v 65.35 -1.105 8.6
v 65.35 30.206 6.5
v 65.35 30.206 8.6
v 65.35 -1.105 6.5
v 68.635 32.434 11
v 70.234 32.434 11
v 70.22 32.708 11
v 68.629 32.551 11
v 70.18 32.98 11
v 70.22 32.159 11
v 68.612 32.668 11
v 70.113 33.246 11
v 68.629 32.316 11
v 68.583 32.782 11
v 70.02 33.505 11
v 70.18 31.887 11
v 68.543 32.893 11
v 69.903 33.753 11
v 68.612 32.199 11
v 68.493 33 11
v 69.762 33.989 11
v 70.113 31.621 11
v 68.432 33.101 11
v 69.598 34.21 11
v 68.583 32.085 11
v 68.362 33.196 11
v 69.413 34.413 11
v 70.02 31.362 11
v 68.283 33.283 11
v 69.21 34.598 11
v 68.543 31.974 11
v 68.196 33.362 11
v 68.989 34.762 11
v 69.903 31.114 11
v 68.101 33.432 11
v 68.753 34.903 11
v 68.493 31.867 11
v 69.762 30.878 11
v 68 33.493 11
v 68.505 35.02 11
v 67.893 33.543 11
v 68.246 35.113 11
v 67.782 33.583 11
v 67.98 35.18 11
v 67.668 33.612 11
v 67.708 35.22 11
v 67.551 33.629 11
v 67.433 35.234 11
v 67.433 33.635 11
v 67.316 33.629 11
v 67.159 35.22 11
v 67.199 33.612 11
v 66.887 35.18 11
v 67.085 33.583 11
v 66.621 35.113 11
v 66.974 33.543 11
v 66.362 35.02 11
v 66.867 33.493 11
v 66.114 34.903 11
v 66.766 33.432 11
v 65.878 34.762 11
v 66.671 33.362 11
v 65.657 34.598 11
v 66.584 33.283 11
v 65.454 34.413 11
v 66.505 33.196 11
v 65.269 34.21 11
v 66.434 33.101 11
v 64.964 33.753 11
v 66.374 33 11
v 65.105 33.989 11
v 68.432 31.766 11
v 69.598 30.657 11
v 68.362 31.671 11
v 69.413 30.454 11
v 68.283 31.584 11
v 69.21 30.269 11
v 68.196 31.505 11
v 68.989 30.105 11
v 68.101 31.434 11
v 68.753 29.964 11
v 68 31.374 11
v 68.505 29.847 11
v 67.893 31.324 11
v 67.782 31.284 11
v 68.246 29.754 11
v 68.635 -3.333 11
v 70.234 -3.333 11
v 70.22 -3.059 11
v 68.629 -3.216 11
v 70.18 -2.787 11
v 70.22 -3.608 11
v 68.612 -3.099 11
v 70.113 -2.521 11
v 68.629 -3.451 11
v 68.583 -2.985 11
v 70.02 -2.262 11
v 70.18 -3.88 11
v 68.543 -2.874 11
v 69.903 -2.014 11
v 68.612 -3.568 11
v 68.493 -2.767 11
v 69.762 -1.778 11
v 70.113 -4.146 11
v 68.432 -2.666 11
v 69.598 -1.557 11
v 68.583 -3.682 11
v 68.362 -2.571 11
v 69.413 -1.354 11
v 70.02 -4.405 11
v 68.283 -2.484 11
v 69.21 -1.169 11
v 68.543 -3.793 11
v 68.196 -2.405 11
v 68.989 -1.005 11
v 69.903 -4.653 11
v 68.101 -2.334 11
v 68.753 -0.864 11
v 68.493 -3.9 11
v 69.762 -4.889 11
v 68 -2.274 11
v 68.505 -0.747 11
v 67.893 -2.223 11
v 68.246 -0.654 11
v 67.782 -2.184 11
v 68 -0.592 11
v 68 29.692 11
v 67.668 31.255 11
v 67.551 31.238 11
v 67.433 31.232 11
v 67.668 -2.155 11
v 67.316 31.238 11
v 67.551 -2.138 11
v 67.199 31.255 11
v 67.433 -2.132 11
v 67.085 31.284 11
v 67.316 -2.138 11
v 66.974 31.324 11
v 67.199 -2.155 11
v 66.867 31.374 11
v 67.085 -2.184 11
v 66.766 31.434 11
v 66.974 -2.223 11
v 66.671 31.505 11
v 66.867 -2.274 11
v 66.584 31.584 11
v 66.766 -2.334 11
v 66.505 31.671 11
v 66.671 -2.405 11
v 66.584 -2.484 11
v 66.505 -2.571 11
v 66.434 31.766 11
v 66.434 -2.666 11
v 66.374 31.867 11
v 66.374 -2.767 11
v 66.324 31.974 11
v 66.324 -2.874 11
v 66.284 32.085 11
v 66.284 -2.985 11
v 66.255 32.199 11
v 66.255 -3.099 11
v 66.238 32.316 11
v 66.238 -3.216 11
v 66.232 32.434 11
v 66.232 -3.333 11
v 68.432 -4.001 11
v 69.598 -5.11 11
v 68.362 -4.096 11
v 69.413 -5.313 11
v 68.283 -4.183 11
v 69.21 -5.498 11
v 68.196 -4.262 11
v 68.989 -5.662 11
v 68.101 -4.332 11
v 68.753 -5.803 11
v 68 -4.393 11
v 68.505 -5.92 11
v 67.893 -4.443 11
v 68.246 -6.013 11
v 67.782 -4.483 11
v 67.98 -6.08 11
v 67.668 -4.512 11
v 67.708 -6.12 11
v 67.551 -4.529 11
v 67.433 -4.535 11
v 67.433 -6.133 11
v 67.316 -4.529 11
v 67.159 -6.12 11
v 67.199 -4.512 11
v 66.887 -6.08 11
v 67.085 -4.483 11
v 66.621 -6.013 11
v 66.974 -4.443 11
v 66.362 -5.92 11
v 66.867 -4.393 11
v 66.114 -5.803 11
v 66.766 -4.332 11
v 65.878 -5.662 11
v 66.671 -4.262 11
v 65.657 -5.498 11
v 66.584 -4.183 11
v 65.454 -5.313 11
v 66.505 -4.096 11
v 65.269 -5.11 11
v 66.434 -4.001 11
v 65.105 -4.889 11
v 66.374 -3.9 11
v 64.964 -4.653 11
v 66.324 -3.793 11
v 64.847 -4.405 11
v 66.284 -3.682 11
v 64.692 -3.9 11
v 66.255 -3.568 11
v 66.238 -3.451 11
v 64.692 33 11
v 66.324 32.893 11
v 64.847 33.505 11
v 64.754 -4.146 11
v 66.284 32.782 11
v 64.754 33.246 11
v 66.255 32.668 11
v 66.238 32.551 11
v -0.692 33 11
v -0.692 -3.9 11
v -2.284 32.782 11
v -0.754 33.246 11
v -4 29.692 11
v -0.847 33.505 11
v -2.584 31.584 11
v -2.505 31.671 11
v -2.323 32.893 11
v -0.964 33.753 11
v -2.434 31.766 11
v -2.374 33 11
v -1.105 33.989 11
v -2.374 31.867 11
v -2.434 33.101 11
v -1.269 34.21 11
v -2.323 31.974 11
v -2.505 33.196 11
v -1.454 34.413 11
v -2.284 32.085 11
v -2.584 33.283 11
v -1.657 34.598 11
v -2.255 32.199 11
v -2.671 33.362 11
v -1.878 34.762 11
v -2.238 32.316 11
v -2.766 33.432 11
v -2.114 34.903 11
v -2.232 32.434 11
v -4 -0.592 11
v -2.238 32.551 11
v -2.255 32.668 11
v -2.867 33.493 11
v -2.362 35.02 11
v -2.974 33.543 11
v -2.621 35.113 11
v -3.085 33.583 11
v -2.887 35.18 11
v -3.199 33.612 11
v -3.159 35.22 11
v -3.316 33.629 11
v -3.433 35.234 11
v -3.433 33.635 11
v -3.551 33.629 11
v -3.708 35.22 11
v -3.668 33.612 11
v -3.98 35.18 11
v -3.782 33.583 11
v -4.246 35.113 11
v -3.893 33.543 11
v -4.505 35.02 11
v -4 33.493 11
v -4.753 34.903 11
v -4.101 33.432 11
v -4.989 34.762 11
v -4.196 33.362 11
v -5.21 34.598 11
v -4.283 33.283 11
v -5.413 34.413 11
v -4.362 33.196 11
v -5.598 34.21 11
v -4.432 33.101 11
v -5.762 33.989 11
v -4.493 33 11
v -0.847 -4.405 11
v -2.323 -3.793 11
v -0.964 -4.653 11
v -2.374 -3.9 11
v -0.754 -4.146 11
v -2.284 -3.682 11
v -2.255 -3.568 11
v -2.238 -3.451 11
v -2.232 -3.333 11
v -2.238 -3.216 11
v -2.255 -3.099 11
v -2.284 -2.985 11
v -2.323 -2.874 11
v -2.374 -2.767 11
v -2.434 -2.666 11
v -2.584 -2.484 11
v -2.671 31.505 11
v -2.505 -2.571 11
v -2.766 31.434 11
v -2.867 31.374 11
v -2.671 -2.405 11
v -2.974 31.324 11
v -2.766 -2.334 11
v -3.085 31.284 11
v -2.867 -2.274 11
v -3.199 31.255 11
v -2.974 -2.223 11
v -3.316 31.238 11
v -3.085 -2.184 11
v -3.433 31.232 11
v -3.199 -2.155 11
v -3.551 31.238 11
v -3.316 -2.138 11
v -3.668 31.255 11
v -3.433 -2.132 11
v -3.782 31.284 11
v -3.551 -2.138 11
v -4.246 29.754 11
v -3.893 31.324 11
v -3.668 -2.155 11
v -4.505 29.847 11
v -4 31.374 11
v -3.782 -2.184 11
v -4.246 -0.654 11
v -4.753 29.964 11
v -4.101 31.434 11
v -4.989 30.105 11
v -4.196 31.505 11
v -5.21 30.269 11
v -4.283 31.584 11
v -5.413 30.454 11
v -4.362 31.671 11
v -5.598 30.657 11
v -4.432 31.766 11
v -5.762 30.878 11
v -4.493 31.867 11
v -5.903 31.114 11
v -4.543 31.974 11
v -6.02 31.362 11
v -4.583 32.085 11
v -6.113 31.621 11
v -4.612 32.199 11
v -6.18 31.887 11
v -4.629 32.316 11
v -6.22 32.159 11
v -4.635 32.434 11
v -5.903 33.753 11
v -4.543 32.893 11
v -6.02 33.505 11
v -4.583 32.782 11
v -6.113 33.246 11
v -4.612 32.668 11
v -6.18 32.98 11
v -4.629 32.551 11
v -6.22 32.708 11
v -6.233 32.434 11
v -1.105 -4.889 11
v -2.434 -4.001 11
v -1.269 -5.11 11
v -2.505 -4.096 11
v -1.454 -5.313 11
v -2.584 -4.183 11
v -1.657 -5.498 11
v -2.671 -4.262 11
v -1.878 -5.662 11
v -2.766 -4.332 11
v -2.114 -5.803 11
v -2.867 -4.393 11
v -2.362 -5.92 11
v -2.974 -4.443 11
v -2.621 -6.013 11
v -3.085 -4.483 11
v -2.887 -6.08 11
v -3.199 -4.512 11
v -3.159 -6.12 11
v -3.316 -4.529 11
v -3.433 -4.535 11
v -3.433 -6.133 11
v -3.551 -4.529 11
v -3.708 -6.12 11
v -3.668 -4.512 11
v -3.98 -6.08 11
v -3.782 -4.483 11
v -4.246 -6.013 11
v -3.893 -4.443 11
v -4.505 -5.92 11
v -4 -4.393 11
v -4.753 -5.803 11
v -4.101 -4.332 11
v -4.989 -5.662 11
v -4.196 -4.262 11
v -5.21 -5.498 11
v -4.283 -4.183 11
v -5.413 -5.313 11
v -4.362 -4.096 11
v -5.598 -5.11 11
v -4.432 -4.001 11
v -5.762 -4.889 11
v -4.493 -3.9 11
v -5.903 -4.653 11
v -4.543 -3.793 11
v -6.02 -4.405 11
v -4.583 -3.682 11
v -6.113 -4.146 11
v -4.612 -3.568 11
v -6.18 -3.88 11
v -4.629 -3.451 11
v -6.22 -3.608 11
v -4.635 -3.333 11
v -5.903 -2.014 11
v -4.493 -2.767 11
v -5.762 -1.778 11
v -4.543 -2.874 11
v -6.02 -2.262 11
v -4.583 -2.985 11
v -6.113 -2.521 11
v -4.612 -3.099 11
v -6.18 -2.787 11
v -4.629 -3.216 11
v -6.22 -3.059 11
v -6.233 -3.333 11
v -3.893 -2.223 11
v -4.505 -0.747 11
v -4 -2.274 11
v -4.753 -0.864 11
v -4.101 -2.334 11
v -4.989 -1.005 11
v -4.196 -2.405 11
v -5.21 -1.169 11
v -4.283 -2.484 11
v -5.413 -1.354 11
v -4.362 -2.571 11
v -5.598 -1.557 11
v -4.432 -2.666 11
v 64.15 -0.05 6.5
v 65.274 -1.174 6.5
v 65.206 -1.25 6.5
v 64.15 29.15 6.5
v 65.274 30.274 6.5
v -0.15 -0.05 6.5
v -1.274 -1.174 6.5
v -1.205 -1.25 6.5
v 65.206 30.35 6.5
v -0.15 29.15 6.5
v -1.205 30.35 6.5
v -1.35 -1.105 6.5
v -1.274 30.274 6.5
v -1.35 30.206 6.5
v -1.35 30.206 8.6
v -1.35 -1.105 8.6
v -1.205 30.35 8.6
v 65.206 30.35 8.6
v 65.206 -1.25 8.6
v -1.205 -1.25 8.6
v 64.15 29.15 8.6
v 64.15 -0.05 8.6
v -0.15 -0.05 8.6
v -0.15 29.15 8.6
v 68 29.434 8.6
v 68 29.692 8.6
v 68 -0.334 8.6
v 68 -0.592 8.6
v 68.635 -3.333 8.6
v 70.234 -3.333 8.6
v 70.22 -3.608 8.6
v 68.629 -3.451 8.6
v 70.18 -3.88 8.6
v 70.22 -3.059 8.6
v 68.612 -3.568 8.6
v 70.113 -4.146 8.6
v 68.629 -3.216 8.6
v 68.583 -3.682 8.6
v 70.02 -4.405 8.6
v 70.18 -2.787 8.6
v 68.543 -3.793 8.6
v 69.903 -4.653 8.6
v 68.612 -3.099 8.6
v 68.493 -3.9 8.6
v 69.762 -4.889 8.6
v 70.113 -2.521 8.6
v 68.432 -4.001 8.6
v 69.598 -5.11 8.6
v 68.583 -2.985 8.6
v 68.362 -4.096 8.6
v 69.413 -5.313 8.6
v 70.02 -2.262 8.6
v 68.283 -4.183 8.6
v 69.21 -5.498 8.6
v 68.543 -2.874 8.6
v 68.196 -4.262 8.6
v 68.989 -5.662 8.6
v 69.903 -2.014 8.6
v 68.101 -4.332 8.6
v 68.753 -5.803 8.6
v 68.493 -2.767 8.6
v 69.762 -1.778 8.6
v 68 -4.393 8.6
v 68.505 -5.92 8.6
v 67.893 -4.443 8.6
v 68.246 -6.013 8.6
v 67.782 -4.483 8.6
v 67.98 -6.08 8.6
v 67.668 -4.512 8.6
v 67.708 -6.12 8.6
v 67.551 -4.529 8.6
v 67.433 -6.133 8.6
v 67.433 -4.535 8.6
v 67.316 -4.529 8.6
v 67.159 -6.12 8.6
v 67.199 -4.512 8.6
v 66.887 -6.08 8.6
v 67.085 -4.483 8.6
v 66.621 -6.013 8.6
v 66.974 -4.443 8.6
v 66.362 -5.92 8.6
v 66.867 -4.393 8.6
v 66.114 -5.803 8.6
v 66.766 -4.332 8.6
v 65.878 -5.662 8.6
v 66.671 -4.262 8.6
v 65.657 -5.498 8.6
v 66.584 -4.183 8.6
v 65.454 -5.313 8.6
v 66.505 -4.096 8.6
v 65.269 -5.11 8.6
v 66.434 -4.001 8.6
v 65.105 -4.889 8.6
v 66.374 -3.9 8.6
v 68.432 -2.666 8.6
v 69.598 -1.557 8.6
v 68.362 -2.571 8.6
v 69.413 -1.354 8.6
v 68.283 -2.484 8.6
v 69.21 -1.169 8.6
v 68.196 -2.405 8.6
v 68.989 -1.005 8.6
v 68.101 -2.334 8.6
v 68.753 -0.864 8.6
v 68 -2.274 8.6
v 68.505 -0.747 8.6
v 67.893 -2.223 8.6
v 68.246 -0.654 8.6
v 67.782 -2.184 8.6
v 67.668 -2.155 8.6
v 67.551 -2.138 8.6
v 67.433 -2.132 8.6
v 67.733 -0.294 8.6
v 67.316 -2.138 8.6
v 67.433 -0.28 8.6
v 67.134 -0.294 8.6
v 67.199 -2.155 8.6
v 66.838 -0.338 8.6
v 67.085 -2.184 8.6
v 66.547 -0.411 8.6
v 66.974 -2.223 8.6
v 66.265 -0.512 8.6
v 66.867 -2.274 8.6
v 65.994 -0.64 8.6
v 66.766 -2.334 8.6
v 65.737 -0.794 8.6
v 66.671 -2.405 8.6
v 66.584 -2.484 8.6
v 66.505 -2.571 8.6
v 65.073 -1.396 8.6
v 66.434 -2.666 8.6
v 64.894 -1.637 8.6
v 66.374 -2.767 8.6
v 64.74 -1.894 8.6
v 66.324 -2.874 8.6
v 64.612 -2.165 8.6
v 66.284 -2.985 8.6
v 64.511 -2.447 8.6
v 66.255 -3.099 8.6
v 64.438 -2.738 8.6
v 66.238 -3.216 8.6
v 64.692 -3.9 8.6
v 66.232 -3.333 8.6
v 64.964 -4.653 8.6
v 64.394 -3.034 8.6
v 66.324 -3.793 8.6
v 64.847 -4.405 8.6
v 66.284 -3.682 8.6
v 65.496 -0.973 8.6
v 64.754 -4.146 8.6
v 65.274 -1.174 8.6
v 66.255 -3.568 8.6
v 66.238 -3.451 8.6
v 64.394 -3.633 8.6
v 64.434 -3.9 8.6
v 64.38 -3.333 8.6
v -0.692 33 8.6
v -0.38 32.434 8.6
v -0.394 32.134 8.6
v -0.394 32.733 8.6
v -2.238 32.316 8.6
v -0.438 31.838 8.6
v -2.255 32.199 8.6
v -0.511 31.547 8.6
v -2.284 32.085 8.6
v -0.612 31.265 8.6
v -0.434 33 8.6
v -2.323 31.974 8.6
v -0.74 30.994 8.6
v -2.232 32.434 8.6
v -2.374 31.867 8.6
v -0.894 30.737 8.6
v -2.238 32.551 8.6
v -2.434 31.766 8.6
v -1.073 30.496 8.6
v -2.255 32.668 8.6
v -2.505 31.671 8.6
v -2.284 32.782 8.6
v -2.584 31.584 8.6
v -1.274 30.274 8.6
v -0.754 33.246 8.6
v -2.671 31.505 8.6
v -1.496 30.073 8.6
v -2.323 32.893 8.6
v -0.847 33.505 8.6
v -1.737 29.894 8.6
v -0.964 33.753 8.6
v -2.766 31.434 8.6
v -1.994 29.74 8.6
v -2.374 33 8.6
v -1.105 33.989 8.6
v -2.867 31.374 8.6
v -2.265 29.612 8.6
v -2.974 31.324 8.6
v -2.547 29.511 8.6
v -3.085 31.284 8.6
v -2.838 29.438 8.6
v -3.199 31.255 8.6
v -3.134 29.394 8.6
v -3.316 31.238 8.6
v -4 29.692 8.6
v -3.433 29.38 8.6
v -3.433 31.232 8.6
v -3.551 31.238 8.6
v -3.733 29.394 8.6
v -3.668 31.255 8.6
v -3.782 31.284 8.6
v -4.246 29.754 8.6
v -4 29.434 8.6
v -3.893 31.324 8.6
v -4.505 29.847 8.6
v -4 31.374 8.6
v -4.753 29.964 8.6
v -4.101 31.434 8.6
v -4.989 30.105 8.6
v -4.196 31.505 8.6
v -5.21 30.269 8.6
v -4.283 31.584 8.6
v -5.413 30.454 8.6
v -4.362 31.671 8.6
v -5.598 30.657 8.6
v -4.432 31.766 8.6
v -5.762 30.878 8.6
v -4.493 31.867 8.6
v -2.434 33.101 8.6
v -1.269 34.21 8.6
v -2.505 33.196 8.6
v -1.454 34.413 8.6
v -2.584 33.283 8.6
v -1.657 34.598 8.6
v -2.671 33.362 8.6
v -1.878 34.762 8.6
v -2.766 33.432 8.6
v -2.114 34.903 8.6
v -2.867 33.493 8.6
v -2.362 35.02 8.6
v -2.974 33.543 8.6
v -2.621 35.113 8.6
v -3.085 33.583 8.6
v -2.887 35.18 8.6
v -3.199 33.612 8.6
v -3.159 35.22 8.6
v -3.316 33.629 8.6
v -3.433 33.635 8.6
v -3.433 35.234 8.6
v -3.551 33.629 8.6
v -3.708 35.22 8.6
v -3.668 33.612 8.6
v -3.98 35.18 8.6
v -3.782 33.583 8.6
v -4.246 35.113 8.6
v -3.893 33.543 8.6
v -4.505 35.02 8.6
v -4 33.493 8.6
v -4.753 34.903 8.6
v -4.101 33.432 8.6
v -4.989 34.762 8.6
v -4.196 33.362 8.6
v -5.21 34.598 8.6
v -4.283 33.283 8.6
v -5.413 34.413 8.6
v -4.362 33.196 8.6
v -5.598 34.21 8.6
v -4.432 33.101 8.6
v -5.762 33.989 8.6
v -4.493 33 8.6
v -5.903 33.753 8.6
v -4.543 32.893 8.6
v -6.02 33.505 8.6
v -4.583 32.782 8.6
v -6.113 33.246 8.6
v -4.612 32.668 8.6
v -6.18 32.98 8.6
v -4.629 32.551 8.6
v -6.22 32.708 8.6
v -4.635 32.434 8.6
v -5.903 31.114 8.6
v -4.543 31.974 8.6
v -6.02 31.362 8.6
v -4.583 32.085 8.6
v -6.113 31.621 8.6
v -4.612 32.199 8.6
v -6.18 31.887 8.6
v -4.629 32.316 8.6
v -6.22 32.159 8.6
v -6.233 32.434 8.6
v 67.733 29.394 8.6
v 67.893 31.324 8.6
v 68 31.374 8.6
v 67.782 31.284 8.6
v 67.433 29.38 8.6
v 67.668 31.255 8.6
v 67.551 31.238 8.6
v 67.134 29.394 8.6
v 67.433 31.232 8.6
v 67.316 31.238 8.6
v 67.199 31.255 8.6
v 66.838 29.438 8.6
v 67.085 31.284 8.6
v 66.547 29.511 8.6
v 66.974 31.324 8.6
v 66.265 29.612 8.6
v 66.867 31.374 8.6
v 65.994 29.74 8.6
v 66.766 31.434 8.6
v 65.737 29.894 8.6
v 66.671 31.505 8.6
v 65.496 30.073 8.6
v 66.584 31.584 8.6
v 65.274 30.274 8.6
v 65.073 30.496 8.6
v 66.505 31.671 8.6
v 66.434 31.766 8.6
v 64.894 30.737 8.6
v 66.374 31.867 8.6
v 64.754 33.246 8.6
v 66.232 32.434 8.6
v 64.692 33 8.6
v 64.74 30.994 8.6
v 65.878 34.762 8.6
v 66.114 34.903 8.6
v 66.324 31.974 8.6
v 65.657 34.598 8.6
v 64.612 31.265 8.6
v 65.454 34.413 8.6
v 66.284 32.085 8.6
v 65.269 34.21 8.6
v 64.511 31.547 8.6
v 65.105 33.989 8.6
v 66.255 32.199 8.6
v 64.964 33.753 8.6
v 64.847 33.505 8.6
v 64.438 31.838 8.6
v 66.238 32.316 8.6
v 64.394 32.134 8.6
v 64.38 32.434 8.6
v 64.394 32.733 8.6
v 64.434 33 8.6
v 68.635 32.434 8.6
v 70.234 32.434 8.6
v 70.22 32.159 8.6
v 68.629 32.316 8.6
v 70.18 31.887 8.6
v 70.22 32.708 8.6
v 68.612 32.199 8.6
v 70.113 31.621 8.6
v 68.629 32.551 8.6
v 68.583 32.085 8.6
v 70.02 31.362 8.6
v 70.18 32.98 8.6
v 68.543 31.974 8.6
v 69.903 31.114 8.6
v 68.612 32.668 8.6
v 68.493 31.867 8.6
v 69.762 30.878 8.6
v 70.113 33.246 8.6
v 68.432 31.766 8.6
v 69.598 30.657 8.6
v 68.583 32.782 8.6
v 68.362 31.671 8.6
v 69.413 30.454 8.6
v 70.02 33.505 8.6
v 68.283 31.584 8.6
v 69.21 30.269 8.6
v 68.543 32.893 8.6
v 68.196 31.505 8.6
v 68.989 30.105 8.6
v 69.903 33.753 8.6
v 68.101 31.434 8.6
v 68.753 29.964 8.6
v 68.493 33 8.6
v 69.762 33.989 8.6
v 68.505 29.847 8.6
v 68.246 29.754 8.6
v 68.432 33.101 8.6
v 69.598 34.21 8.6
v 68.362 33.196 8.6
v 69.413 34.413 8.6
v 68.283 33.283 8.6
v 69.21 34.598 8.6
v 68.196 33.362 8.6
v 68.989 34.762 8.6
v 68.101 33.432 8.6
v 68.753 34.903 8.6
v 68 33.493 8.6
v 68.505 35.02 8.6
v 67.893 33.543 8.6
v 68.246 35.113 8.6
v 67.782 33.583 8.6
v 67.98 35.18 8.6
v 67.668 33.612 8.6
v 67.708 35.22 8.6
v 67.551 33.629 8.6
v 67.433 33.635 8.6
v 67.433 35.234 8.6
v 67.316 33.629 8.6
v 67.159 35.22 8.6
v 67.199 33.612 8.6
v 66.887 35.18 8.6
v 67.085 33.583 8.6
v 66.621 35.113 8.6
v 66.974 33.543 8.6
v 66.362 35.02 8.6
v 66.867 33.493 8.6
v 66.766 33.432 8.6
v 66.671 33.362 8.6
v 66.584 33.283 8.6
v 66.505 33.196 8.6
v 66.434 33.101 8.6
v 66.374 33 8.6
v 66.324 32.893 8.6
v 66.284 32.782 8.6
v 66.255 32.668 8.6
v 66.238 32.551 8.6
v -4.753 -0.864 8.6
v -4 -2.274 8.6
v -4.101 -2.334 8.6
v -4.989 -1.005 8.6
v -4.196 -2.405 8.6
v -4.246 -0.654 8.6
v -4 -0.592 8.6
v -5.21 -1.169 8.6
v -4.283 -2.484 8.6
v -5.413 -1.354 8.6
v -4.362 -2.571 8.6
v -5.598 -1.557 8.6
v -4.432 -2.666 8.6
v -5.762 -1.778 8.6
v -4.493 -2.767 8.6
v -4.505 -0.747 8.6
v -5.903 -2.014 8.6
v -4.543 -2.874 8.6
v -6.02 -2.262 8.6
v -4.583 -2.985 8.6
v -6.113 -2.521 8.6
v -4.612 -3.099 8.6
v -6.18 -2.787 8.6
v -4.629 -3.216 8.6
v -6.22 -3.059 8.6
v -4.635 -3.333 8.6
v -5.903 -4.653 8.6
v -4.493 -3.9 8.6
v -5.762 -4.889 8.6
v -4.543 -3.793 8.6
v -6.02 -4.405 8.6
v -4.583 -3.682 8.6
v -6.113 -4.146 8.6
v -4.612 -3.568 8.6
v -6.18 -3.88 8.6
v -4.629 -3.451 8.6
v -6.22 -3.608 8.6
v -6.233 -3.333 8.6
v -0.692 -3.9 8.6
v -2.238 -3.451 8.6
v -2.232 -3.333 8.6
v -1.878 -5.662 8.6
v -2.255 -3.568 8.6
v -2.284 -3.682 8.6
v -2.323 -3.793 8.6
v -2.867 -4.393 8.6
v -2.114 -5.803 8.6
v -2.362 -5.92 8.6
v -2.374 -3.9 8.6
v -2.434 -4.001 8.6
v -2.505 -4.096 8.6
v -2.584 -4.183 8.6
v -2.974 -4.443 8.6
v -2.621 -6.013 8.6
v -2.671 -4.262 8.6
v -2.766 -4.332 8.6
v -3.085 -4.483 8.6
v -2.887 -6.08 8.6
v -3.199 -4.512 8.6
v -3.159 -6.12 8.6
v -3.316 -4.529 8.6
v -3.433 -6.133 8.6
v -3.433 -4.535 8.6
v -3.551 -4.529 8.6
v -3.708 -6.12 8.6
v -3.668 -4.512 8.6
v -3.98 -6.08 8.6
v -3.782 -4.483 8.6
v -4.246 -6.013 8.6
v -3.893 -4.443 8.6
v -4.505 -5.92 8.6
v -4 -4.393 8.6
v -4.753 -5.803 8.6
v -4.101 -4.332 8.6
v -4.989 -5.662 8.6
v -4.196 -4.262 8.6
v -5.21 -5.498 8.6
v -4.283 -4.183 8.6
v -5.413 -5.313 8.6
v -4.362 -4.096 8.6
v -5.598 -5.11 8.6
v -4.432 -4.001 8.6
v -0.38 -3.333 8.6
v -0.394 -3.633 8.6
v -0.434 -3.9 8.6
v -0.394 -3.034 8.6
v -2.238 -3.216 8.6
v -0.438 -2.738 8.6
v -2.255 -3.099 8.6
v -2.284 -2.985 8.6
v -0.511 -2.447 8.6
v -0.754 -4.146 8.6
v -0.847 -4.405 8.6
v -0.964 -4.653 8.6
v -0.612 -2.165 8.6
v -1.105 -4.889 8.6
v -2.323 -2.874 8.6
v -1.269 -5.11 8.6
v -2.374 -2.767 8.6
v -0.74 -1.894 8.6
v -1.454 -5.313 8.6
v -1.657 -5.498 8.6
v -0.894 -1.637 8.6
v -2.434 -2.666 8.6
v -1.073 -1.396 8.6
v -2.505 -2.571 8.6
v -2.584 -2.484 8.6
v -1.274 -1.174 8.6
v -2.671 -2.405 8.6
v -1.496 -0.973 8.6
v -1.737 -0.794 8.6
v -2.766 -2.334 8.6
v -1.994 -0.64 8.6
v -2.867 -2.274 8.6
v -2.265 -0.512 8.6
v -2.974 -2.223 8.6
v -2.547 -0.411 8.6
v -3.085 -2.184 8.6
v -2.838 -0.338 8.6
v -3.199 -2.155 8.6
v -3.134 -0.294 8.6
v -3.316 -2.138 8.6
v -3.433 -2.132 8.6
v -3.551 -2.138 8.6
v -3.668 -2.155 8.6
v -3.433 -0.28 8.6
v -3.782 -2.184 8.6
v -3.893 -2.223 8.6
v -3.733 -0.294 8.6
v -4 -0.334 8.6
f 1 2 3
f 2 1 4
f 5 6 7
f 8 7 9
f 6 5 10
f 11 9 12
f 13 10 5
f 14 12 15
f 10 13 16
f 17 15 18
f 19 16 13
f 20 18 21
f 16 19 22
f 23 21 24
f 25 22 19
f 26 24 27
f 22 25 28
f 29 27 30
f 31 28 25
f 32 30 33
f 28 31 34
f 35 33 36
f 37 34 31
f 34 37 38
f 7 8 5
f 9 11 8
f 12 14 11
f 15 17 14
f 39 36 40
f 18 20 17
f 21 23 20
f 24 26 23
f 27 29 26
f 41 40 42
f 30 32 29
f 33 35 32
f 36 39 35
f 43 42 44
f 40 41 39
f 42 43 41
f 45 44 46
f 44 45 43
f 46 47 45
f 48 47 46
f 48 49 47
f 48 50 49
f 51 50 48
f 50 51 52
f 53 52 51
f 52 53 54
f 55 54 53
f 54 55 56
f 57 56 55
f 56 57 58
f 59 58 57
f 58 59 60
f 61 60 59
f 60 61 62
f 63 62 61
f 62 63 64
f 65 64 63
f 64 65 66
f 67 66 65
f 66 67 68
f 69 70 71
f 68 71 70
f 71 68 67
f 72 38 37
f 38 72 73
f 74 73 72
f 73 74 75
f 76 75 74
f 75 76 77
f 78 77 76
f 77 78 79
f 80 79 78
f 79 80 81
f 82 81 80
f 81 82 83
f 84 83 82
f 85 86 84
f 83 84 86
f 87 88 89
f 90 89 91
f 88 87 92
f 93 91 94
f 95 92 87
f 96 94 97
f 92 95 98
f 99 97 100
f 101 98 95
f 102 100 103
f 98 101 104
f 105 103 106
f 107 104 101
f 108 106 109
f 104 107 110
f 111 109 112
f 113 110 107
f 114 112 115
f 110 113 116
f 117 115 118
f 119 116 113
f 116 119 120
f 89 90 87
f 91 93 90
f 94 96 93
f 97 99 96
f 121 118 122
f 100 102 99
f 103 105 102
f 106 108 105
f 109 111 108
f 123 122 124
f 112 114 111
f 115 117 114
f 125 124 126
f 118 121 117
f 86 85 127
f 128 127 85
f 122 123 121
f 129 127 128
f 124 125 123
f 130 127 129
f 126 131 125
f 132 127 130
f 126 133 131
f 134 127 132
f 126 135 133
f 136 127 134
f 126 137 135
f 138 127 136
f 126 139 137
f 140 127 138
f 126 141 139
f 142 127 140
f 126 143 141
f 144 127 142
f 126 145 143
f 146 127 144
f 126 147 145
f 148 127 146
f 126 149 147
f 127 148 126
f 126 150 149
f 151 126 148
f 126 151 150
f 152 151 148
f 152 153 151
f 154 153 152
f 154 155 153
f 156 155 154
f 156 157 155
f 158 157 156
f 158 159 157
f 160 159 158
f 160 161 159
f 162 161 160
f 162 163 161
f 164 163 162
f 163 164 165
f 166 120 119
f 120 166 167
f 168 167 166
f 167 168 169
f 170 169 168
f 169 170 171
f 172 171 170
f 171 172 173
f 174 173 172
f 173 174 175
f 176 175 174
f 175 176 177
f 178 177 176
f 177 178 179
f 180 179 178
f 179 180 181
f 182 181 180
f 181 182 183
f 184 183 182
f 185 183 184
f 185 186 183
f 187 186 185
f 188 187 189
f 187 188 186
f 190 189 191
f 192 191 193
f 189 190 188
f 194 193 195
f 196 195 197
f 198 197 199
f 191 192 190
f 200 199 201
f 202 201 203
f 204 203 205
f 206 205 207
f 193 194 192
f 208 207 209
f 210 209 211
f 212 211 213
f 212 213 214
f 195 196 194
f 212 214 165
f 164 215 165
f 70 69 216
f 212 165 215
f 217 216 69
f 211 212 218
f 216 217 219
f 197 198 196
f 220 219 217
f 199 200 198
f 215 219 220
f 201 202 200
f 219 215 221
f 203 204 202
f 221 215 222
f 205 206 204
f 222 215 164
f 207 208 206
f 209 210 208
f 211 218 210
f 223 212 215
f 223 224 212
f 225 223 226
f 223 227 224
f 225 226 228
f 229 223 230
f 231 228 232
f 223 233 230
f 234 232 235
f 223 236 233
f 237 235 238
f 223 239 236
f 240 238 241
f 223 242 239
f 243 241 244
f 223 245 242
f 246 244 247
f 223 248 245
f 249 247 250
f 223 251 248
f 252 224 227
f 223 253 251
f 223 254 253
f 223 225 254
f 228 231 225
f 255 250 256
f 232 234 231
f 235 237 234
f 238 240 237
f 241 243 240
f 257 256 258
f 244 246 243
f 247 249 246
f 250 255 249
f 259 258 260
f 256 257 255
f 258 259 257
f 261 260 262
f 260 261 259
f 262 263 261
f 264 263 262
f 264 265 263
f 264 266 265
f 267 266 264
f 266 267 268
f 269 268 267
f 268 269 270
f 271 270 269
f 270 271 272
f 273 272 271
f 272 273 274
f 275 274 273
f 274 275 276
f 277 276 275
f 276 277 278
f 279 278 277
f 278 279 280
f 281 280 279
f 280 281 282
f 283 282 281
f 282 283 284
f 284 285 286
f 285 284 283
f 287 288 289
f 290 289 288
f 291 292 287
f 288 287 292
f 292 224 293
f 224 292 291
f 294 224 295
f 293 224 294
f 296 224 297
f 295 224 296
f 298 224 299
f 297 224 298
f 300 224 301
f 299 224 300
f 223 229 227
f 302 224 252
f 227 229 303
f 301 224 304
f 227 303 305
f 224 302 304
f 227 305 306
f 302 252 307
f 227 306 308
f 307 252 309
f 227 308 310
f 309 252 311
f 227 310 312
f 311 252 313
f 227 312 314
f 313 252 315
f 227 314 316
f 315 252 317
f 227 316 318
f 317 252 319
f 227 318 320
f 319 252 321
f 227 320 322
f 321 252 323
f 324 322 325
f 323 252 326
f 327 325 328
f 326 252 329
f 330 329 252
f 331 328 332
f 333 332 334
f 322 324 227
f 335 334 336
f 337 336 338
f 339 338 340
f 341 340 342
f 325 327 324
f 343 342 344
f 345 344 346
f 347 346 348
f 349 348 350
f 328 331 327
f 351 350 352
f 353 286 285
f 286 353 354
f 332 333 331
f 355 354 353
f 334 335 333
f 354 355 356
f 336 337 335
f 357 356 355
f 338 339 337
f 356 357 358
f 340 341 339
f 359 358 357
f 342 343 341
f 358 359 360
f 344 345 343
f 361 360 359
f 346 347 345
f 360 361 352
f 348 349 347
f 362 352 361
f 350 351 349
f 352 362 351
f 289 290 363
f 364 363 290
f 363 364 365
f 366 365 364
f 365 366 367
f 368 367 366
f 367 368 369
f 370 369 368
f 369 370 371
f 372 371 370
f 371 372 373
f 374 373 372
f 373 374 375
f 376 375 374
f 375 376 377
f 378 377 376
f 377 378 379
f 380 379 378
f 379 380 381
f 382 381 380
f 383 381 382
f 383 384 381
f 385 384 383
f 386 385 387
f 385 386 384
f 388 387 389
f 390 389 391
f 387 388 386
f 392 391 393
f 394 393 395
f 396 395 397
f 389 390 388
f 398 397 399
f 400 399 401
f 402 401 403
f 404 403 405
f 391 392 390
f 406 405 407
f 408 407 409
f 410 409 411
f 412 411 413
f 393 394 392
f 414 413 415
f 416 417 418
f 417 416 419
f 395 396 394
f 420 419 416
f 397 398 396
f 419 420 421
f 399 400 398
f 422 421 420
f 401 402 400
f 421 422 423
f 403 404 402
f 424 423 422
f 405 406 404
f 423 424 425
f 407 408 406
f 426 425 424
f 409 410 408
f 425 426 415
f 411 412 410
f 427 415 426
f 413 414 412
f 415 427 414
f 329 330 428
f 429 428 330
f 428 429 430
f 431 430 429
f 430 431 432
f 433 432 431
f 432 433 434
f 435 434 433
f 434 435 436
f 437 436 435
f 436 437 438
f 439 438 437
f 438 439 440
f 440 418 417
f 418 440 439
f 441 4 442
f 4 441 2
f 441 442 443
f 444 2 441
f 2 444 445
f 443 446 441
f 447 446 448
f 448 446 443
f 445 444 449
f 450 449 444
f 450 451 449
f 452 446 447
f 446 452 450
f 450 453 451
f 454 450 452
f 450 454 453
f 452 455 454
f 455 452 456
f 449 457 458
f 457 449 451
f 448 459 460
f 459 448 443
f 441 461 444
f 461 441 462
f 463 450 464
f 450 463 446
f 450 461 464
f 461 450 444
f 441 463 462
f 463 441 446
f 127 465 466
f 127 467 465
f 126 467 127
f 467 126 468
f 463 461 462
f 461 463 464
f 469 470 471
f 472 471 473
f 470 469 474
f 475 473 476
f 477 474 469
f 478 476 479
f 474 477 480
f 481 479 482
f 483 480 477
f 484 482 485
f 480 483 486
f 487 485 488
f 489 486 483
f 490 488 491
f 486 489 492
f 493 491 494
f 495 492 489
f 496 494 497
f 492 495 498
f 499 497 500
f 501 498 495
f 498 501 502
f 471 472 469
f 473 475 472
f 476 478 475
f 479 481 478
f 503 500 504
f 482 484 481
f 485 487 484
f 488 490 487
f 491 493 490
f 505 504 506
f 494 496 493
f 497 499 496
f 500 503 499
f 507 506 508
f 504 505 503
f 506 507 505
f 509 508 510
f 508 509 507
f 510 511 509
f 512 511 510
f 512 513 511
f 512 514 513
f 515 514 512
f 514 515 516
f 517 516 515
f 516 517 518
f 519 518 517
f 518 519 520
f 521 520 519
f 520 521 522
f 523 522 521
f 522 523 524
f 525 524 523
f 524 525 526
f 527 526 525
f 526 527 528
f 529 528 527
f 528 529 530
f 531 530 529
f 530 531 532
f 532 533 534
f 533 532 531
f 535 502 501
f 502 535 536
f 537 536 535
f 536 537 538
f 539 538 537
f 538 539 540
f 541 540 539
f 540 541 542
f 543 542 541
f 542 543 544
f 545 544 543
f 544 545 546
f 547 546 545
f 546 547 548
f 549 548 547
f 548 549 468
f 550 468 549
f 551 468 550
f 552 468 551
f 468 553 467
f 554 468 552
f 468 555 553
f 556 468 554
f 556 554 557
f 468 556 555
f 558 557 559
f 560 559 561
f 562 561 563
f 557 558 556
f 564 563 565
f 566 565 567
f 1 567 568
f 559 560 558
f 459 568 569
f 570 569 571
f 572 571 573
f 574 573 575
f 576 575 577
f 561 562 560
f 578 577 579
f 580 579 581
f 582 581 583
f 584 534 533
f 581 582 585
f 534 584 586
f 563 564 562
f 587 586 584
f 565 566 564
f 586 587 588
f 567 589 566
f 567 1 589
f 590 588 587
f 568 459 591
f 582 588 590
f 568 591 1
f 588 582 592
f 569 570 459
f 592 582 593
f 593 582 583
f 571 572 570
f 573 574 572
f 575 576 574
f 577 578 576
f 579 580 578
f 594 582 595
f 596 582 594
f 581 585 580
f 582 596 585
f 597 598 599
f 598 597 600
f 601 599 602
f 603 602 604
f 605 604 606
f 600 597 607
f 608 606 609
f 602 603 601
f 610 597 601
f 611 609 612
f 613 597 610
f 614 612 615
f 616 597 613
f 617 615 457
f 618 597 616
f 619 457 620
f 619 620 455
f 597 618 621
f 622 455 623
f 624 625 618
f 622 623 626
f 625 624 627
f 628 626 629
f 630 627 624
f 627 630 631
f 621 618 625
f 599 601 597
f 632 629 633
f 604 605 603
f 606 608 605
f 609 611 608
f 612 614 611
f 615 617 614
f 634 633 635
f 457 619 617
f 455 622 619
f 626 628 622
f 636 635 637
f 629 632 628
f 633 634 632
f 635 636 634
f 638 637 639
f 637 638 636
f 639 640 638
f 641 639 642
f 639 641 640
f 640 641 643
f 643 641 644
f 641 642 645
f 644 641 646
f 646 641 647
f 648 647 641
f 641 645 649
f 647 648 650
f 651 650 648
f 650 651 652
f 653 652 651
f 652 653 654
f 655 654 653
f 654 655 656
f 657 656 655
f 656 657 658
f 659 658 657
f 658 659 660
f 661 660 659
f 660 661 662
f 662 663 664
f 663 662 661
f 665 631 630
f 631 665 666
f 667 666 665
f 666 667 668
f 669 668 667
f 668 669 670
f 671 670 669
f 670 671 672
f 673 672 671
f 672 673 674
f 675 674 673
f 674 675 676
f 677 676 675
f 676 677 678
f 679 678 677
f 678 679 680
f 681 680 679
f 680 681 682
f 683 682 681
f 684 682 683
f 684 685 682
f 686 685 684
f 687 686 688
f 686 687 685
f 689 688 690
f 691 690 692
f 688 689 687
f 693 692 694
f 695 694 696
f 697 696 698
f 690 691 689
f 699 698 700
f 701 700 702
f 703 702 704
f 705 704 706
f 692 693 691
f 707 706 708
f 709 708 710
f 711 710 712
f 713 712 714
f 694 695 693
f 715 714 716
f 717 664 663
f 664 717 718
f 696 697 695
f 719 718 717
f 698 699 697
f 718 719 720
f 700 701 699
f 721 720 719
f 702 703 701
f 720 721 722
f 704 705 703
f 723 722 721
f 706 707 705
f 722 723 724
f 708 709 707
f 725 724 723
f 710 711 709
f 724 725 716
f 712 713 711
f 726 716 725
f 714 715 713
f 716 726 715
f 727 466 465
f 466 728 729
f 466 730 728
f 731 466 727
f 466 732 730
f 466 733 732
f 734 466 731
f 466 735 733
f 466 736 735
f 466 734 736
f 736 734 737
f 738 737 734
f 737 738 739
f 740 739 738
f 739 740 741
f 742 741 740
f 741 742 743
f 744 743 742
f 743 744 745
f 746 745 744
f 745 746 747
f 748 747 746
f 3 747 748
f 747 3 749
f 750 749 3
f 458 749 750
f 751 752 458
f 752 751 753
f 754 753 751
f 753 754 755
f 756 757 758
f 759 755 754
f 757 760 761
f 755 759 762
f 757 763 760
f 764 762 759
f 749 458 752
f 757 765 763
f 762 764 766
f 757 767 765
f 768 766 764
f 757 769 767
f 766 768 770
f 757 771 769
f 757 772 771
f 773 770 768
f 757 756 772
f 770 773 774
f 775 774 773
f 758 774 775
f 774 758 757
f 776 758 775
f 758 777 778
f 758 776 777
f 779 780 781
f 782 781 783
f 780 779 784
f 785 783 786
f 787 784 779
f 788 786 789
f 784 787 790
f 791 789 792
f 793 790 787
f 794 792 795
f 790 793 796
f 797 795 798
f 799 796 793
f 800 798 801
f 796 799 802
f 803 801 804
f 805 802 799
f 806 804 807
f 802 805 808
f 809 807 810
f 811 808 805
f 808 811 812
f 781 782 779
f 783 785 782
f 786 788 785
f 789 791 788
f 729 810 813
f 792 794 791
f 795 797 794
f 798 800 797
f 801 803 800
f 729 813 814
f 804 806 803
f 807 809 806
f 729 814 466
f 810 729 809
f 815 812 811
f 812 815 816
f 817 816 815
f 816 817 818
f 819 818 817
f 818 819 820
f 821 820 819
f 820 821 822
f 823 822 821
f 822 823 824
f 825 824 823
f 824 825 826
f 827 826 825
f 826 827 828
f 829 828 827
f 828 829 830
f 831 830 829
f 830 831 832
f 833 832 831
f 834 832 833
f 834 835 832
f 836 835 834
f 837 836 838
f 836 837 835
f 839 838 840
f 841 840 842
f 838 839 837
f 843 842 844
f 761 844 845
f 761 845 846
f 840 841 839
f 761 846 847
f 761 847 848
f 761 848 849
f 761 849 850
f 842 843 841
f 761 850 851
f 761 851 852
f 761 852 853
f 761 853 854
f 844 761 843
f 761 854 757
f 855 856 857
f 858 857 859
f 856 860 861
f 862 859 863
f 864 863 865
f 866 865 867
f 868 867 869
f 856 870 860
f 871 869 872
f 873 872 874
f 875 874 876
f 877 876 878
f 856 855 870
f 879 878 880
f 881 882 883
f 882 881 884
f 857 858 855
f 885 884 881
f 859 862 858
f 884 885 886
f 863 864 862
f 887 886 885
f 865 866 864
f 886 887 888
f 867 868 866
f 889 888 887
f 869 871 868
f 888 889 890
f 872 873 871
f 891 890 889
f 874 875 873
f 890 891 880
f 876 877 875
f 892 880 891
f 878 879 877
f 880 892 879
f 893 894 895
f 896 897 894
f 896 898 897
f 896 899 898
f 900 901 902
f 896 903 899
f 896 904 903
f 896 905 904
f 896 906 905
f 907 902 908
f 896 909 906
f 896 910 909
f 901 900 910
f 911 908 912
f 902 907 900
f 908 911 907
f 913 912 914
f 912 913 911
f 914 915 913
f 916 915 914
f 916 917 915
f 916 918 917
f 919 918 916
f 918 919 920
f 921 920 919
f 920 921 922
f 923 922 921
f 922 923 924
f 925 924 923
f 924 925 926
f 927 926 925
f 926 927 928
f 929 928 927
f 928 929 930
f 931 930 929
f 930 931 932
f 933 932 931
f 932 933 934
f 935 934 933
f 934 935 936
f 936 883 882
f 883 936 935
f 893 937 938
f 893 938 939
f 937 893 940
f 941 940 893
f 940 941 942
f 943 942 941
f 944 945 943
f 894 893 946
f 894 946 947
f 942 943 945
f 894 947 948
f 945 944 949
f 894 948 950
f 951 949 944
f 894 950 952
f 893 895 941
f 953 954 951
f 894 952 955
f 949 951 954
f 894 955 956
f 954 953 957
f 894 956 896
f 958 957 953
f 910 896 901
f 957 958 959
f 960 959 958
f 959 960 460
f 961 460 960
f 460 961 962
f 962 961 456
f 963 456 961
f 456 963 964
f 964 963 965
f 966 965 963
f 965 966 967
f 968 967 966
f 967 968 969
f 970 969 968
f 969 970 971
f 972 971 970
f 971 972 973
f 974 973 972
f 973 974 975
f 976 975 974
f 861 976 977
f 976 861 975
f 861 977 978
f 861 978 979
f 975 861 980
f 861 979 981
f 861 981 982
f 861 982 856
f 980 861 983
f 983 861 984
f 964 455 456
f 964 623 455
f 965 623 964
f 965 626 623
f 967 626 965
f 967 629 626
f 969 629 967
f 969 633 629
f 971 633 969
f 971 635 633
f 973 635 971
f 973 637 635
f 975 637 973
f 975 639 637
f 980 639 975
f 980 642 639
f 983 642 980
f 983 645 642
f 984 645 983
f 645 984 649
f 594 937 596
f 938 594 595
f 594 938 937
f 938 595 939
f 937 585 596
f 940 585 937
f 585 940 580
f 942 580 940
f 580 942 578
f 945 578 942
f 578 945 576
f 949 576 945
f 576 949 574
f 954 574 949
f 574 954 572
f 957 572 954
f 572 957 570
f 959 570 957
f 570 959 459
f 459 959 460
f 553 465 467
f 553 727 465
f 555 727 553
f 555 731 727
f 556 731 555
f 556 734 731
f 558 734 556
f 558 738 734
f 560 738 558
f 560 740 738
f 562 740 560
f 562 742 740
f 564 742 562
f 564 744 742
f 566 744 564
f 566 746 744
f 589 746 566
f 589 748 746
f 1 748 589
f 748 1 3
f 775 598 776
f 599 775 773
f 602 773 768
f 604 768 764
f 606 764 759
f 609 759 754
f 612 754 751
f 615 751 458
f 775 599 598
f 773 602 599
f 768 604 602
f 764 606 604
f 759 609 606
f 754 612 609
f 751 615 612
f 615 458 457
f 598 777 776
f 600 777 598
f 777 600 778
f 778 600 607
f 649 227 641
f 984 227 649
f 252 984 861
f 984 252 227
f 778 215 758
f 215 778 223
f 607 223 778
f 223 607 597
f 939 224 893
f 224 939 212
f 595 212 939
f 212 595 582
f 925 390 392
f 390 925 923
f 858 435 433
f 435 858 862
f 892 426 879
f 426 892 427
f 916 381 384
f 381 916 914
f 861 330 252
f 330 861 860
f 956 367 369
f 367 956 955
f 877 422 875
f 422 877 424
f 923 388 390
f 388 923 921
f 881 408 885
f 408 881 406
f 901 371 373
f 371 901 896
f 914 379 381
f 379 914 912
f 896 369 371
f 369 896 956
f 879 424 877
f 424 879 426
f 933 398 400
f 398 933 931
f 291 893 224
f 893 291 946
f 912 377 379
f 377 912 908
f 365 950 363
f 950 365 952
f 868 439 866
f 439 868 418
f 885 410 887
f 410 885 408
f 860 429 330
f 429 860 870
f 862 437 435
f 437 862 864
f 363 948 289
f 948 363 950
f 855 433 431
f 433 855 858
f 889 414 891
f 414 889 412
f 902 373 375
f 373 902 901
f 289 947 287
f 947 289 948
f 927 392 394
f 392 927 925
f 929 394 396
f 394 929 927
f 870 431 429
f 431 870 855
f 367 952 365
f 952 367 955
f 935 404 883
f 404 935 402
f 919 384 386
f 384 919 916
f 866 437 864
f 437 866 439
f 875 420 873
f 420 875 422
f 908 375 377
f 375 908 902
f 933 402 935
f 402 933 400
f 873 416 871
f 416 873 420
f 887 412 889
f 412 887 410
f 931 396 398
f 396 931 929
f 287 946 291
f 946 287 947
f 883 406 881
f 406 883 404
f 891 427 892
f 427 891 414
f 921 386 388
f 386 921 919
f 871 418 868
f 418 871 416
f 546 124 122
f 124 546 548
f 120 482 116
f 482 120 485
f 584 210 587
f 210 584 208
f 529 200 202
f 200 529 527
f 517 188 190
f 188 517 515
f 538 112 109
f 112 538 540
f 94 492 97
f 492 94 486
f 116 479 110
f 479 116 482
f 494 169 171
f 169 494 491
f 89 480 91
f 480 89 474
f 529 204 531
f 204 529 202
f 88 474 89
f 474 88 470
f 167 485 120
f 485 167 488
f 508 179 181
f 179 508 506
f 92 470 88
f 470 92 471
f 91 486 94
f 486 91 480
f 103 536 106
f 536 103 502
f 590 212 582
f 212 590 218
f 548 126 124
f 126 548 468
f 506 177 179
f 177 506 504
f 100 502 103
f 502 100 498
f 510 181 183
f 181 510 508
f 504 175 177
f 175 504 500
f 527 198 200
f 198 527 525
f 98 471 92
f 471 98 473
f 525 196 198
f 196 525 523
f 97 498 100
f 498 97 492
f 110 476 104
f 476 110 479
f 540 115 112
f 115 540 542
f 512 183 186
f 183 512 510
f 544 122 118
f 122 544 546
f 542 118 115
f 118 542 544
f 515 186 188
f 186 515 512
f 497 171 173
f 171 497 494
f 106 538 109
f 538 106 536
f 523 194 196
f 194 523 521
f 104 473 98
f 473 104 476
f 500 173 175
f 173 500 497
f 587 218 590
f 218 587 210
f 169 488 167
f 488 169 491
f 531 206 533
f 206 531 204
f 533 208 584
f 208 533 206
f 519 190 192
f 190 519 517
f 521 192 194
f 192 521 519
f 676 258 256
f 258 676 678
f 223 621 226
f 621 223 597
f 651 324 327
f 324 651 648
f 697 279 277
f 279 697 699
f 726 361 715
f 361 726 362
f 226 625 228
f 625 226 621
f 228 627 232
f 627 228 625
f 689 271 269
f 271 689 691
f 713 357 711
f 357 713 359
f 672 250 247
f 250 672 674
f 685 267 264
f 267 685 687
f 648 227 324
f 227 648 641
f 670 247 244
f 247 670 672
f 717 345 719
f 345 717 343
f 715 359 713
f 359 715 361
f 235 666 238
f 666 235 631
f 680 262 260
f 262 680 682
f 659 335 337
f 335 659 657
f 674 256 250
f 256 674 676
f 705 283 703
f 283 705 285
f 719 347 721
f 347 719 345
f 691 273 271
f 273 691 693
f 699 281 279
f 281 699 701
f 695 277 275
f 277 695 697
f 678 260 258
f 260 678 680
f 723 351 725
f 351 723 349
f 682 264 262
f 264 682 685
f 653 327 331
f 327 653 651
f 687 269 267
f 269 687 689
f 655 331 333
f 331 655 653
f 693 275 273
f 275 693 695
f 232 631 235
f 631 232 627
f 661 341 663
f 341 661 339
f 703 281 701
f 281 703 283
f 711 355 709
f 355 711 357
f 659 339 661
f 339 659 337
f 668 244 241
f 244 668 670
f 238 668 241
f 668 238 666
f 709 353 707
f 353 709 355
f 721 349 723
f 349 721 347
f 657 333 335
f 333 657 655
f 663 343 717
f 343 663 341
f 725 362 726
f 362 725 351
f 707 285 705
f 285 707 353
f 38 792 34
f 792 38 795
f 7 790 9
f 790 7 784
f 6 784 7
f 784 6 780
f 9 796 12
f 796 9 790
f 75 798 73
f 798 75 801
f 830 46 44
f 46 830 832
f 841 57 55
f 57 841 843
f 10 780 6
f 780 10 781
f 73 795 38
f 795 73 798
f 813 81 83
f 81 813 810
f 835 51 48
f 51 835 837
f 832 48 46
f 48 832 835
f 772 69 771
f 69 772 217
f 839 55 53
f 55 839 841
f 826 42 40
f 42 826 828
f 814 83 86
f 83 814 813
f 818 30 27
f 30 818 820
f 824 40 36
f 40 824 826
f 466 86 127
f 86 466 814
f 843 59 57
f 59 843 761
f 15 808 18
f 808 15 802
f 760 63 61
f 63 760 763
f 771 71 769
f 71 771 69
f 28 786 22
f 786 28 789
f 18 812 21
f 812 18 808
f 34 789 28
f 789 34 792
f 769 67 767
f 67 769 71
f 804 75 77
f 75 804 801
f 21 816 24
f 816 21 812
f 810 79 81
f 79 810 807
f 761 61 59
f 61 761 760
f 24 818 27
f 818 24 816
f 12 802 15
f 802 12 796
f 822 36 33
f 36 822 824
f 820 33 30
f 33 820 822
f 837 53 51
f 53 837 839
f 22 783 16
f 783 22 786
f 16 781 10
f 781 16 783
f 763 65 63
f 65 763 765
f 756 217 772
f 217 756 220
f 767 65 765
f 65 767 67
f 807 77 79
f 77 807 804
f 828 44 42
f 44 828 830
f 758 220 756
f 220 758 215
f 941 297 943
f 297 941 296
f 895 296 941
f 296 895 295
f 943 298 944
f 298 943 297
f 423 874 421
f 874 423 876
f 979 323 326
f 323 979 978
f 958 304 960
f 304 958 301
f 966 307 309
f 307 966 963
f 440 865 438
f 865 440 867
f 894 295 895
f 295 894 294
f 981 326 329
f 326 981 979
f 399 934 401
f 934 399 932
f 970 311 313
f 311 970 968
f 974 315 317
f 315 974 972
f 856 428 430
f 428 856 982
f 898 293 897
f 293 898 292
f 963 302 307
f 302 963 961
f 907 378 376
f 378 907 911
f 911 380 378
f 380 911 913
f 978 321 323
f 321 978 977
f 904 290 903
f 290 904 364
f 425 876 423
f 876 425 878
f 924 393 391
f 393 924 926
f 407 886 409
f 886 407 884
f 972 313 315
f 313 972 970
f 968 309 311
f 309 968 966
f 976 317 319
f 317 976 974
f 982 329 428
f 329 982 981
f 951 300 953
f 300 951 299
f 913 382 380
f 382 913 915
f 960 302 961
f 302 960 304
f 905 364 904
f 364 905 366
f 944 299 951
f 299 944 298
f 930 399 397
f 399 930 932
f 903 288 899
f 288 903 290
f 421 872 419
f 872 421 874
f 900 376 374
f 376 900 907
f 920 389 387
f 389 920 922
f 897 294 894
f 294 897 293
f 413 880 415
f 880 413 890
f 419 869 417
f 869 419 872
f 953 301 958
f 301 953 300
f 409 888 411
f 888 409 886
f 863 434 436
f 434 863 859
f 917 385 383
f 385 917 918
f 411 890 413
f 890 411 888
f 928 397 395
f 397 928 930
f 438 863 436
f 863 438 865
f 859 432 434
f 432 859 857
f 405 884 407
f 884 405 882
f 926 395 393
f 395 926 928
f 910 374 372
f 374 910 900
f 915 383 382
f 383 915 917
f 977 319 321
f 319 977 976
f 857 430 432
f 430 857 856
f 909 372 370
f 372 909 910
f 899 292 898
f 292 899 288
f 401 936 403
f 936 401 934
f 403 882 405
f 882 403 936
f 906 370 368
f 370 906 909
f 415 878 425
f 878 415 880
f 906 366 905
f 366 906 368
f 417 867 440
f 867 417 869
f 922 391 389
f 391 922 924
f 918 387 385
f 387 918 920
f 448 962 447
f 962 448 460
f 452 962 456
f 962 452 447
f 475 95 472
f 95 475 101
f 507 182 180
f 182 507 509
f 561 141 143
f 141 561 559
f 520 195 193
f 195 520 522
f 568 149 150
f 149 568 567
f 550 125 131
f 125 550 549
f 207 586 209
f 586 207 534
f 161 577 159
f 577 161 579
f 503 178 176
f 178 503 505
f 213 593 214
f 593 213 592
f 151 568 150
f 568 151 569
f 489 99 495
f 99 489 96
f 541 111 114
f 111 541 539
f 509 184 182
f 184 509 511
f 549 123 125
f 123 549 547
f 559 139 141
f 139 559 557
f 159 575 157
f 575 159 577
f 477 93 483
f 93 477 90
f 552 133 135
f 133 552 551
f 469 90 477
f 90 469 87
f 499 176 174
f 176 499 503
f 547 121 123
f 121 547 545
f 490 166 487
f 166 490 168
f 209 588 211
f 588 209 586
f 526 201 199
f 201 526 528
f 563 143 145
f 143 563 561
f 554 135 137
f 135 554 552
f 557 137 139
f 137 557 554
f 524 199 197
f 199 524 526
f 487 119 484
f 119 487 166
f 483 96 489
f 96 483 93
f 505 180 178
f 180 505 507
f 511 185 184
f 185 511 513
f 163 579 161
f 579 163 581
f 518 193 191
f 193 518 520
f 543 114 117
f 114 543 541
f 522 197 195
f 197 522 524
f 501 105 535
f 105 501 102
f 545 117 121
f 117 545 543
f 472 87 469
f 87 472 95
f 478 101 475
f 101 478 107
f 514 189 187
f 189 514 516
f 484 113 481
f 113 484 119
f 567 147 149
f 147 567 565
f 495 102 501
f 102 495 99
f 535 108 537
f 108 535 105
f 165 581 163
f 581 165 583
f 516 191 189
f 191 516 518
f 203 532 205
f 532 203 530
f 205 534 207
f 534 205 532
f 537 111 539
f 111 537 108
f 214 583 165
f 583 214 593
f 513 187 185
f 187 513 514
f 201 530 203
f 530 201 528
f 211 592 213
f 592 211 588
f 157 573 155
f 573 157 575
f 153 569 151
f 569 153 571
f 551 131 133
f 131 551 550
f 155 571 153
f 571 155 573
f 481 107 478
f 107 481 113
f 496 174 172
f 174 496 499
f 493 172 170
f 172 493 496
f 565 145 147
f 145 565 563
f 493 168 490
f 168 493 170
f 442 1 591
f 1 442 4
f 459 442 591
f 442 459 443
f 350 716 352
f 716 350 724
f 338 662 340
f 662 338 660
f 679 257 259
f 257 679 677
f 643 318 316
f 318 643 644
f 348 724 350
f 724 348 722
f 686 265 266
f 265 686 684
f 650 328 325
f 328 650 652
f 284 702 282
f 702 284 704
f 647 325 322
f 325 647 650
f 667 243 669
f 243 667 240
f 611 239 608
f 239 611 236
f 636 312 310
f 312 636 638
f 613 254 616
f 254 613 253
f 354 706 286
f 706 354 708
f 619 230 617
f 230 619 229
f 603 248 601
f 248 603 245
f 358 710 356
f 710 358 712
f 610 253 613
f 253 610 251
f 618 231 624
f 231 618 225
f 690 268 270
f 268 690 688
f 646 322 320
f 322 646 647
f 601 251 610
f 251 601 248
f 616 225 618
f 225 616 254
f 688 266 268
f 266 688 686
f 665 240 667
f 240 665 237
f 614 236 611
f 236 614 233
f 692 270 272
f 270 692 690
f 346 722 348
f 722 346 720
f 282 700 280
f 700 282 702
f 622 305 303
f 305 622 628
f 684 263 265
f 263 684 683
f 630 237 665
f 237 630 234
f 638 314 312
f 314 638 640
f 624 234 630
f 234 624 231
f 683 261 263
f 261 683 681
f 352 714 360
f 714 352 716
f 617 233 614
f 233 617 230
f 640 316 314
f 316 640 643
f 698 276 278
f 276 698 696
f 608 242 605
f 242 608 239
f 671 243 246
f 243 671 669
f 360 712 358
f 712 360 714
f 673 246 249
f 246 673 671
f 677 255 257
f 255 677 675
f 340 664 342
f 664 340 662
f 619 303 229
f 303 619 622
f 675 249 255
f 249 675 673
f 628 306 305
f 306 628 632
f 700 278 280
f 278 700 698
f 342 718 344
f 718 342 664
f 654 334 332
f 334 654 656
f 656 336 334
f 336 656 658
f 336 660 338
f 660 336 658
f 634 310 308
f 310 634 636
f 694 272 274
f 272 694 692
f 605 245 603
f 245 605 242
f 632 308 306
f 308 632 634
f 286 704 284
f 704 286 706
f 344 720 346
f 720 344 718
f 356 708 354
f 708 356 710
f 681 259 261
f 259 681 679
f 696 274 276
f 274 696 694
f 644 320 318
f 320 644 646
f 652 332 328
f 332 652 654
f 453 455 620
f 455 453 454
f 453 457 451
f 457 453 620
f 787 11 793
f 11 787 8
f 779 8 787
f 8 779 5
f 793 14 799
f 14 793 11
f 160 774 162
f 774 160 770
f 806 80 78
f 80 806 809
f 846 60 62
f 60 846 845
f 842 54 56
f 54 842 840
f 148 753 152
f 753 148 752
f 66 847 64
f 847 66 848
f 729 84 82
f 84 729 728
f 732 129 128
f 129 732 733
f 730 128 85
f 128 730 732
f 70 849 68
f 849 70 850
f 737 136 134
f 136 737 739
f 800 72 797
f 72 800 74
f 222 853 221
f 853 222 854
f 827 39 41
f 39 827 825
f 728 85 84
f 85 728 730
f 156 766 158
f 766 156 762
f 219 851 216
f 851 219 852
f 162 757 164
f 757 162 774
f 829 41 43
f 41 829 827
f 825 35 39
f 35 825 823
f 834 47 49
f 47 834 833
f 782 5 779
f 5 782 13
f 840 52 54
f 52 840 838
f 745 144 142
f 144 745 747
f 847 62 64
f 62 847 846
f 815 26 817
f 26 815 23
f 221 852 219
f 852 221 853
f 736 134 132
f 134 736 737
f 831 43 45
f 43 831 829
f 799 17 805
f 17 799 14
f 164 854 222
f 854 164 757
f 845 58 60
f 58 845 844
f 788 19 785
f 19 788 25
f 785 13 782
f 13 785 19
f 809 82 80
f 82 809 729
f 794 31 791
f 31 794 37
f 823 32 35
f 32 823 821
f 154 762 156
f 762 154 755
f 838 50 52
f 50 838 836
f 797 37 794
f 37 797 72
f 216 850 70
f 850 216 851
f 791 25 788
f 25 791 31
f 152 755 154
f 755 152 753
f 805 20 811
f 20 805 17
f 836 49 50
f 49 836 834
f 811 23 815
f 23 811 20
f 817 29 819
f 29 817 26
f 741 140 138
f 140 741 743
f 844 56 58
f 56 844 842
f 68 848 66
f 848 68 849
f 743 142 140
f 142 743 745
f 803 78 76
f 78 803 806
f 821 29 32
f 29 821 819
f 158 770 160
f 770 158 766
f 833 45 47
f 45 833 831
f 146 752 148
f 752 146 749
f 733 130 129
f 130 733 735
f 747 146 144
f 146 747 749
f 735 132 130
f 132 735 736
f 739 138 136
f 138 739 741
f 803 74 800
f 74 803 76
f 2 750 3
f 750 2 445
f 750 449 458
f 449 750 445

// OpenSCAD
// body lid
difference() {
  union() {
    // body lid (lid_plate)
    multmatrix([[1, 0, 0, 32], [0, 1, 0, 14.55], [0, 0, 1, 8.6], [0, 0, 0, 1]]) translate([-36, -18.45, 0]) cube([72, 36.9, 2.4]);
    // add lid_lip (lip)
    multmatrix([[1, 0, 0, 32], [0, 1, 0, 14.55], [0, 0, 1, 6.5], [0, 0, 0, 1]]) difference() { translate([-33.35, -15.8, 0]) cube([66.7, 31.6, 4.5]); translate([0, 0, -1]) translate([-32.15, -14.6, 0]) cube([64.3, 29.2, 6.5]); }
    // add boss_1_pad (pad)
    multmatrix([[1, 0, 0, -3.433452], [0, 1, 0, -3.333452], [0, 0, 1, 8.6], [0, 0, 0, 1]]) cylinder(h=2.4, d=5.6, $fn=64);
    // add boss_2_pad (pad)
    multmatrix([[1, 0, 0, 67.433452], [0, 1, 0, -3.333452], [0, 0, 1, 8.6], [0, 0, 0, 1]]) cylinder(h=2.4, d=5.6, $fn=64);
    // add boss_3_pad (pad)
    multmatrix([[1, 0, 0, -3.433452], [0, 1, 0, 32.433452], [0, 0, 1, 8.6], [0, 0, 0, 1]]) cylinder(h=2.4, d=5.6, $fn=64);
    // add boss_4_pad (pad)
    multmatrix([[1, 0, 0, 67.433452], [0, 1, 0, 32.433452], [0, 0, 1, 8.6], [0, 0, 0, 1]]) cylinder(h=2.4, d=5.6, $fn=64);
  }
  // cut boss_1_lid_hole (screw_hole)
  multmatrix([[1, 0, 0, -3.433452], [0, 1, 0, -3.333452], [0, 0, 1, 7.6], [0, 0, 0, 1]]) cylinder(h=4.4, d=2.402894, $fn=64);
  // cut boss_1_lip_notch (lip_notch)
  multmatrix([[1, 0, 0, -3.433452], [0, 1, 0, -3.333452], [0, 0, 1, 5.5], [0, 0, 0, 1]]) cylinder(h=3.1, d=6.107357, $fn=64);
  // cut boss_2_lid_hole (screw_hole)
  multmatrix([[1, 0, 0, 67.433452], [0, 1, 0, -3.333452], [0, 0, 1, 7.6], [0, 0, 0, 1]]) cylinder(h=4.4, d=2.402894, $fn=64);
  // cut boss_2_lip_notch (lip_notch)
  multmatrix([[1, 0, 0, 67.433452], [0, 1, 0, -3.333452], [0, 0, 1, 5.5], [0, 0, 0, 1]]) cylinder(h=3.1, d=6.107357, $fn=64);
  // cut boss_3_lid_hole (screw_hole)
  multmatrix([[1, 0, 0, -3.433452], [0, 1, 0, 32.433452], [0, 0, 1, 7.6], [0, 0, 0, 1]]) cylinder(h=4.4, d=2.402894, $fn=64);
  // cut boss_3_lip_notch (lip_notch)
  multmatrix([[1, 0, 0, -3.433452], [0, 1, 0, 32.433452], [0, 0, 1, 5.5], [0, 0, 0, 1]]) cylinder(h=3.1, d=6.107357, $fn=64);
  // cut boss_4_lid_hole (screw_hole)
  multmatrix([[1, 0, 0, 67.433452], [0, 1, 0, 32.433452], [0, 0, 1, 7.6], [0, 0, 0, 1]]) cylinder(h=4.4, d=2.402894, $fn=64);
  // cut boss_4_lip_notch (lip_notch)
  multmatrix([[1, 0, 0, 67.433452], [0, 1, 0, 32.433452], [0, 0, 1, 5.5], [0, 0, 0, 1]]) cylinder(h=3.1, d=6.107357, $fn=64);
}
